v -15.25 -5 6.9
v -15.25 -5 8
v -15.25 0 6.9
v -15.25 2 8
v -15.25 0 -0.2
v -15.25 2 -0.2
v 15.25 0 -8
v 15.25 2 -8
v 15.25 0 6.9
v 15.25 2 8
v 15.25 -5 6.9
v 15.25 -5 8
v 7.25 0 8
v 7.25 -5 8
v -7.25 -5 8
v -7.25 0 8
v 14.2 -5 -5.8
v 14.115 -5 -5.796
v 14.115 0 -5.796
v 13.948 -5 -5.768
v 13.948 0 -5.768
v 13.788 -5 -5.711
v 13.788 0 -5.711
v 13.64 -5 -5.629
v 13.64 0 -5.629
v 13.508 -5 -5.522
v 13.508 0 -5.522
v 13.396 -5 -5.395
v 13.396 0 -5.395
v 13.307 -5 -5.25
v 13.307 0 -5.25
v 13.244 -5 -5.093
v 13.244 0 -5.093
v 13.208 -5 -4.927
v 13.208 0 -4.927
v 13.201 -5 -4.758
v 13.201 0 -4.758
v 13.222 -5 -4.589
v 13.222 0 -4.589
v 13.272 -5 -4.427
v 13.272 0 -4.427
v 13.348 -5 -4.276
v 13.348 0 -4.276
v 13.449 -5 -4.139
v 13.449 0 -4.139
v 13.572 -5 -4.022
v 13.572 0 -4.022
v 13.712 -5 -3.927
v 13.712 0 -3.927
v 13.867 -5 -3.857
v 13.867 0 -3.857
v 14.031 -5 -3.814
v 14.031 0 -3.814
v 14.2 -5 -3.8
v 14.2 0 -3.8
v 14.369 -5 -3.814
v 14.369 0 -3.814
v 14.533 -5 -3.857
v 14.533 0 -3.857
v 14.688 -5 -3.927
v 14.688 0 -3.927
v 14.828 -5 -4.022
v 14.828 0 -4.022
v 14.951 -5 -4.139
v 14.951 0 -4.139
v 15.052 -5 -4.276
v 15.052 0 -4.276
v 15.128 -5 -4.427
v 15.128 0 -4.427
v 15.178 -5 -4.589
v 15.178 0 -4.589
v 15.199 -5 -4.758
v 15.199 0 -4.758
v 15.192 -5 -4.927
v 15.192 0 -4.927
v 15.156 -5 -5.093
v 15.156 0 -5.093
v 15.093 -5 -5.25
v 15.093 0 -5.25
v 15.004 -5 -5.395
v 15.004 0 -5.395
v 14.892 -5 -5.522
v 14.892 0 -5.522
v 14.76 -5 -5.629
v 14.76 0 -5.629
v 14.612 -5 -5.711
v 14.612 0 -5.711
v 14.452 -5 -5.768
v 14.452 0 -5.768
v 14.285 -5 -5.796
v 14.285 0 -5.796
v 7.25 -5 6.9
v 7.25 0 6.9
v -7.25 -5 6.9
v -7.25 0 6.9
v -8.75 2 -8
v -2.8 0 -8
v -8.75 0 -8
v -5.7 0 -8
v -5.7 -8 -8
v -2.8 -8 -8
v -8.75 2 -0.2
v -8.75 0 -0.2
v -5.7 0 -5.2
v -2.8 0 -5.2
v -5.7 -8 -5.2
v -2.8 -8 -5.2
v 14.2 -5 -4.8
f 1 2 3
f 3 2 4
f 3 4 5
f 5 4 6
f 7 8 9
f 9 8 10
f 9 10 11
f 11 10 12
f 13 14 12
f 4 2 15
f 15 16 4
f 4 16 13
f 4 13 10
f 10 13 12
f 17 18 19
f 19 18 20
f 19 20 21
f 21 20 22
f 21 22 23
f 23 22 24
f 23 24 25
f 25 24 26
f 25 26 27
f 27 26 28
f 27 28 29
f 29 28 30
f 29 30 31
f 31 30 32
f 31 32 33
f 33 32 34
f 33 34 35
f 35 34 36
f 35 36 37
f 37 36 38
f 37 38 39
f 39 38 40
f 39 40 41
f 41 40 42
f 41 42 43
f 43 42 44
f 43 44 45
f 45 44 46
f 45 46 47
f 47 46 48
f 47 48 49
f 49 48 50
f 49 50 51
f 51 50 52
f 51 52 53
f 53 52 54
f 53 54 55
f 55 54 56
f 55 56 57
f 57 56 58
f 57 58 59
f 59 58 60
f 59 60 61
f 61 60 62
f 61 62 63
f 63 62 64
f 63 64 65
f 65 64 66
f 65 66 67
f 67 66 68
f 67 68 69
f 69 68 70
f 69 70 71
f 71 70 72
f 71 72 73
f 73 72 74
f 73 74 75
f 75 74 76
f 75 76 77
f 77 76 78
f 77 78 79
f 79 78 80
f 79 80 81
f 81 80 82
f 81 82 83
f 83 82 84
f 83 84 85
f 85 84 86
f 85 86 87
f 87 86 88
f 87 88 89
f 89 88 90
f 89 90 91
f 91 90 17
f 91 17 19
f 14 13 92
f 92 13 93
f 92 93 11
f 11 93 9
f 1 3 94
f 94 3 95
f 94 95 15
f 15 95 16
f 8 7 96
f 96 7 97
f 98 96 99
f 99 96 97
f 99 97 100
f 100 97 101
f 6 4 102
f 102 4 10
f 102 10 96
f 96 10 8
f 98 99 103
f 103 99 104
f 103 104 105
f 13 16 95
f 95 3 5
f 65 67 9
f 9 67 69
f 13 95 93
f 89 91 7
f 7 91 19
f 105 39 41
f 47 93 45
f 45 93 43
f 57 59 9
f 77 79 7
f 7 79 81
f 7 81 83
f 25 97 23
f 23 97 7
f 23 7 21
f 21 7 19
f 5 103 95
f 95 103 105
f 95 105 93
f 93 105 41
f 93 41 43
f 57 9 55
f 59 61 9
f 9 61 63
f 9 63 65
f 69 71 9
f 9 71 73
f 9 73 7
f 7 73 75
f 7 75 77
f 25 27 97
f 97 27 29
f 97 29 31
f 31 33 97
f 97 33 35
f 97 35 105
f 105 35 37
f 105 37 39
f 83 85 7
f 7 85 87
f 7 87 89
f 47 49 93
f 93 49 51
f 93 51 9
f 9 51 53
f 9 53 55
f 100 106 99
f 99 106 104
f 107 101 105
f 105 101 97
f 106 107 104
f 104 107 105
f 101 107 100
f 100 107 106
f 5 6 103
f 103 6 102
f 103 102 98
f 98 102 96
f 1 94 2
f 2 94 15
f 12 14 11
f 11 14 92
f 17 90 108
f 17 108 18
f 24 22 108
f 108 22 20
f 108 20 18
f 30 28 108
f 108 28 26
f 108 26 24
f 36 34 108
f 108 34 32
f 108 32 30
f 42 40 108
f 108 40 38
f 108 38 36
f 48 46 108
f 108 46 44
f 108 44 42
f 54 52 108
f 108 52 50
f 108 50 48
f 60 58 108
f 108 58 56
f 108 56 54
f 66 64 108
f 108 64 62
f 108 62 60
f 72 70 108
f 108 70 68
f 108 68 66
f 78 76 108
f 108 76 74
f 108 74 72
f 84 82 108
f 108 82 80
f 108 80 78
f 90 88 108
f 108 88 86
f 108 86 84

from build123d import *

# Parameters (mm, degrees)
SKETCH1_W           = 30.5
SKETCH1_H           = 16
BOSS_EXTRUDE1_DEPTH = 2
SKETCH3_R           = 1
SKETCH3_W           = 2.9
SKETCH3_H           = 2.8
SKETCH3_W_2         = 8
SKETCH3_H_2         = 1.1
BOSS_EXTRUDE3_DEPTH = 8
CUT_EXTRUDE2_DEPTH  = 10
CUT_EXTRUDE3_START  = -3
SKETCH5_R           = 1
SKETCH5_W           = 30.5
SKETCH5_H           = 1.1
CUT_EXTRUDE3_DEPTH  = 3


with BuildPart() as part:
    # Sketch1 → Boss-Extrude1 (new body)
    with BuildSketch(Plane(origin=(0, 0, 0), x_dir=(1, 0, 0), z_dir=(0, 1, 0))):
        Rectangle(SKETCH1_W, SKETCH1_H)
    extrude(amount=BOSS_EXTRUDE1_DEPTH)

    # Sketch3 → Boss-Extrude3 (add)
    with BuildSketch(Plane(origin=(0, 0, 0), x_dir=(1, 0, 0), z_dir=(0, 1, 0))):
        with Locations(Location((14.2, 4.8, 0), (0, 0, 270))):
            Circle(SKETCH3_R)
        with Locations((-4.25, 6.6)):
            Rectangle(SKETCH3_W, SKETCH3_H)
        with Locations((-11.25, -7.45)):
            Rectangle(SKETCH3_W_2, SKETCH3_H_2)
        with Locations((11.25, -7.45)):
            Rectangle(SKETCH3_W_2, SKETCH3_H_2)
    extrude(amount=-BOSS_EXTRUDE3_DEPTH)

    # Sketch4 → Cut-Extrude2 (cut)
    with BuildSketch(Plane(origin=(0, 0, 0), x_dir=(1, 0, 0), z_dir=(0, 1, 0))):
        Polygon((-15.25, 2.7), (-15.25, 8), (-8.75, 8), (-8.75, 2.7), (-8.75, 0.2), (-15.25, 0.2), align=None)
    extrude(amount=CUT_EXTRUDE2_DEPTH, mode=Mode.SUBTRACT)

    # Sketch5 → Cut-Extrude3 (cut)
    with BuildSketch(Plane.XZ.offset(8).offset(CUT_EXTRUDE3_START)):
        with Locations(Location((14.2, -4.8, 0), (0, 0, 90))):
            Circle(SKETCH5_R)
        with Locations((0, 7.45)):
            Rectangle(SKETCH5_W, SKETCH5_H)
    extrude(amount=CUT_EXTRUDE3_DEPTH, mode=Mode.SUBTRACT)


solid = part.part
